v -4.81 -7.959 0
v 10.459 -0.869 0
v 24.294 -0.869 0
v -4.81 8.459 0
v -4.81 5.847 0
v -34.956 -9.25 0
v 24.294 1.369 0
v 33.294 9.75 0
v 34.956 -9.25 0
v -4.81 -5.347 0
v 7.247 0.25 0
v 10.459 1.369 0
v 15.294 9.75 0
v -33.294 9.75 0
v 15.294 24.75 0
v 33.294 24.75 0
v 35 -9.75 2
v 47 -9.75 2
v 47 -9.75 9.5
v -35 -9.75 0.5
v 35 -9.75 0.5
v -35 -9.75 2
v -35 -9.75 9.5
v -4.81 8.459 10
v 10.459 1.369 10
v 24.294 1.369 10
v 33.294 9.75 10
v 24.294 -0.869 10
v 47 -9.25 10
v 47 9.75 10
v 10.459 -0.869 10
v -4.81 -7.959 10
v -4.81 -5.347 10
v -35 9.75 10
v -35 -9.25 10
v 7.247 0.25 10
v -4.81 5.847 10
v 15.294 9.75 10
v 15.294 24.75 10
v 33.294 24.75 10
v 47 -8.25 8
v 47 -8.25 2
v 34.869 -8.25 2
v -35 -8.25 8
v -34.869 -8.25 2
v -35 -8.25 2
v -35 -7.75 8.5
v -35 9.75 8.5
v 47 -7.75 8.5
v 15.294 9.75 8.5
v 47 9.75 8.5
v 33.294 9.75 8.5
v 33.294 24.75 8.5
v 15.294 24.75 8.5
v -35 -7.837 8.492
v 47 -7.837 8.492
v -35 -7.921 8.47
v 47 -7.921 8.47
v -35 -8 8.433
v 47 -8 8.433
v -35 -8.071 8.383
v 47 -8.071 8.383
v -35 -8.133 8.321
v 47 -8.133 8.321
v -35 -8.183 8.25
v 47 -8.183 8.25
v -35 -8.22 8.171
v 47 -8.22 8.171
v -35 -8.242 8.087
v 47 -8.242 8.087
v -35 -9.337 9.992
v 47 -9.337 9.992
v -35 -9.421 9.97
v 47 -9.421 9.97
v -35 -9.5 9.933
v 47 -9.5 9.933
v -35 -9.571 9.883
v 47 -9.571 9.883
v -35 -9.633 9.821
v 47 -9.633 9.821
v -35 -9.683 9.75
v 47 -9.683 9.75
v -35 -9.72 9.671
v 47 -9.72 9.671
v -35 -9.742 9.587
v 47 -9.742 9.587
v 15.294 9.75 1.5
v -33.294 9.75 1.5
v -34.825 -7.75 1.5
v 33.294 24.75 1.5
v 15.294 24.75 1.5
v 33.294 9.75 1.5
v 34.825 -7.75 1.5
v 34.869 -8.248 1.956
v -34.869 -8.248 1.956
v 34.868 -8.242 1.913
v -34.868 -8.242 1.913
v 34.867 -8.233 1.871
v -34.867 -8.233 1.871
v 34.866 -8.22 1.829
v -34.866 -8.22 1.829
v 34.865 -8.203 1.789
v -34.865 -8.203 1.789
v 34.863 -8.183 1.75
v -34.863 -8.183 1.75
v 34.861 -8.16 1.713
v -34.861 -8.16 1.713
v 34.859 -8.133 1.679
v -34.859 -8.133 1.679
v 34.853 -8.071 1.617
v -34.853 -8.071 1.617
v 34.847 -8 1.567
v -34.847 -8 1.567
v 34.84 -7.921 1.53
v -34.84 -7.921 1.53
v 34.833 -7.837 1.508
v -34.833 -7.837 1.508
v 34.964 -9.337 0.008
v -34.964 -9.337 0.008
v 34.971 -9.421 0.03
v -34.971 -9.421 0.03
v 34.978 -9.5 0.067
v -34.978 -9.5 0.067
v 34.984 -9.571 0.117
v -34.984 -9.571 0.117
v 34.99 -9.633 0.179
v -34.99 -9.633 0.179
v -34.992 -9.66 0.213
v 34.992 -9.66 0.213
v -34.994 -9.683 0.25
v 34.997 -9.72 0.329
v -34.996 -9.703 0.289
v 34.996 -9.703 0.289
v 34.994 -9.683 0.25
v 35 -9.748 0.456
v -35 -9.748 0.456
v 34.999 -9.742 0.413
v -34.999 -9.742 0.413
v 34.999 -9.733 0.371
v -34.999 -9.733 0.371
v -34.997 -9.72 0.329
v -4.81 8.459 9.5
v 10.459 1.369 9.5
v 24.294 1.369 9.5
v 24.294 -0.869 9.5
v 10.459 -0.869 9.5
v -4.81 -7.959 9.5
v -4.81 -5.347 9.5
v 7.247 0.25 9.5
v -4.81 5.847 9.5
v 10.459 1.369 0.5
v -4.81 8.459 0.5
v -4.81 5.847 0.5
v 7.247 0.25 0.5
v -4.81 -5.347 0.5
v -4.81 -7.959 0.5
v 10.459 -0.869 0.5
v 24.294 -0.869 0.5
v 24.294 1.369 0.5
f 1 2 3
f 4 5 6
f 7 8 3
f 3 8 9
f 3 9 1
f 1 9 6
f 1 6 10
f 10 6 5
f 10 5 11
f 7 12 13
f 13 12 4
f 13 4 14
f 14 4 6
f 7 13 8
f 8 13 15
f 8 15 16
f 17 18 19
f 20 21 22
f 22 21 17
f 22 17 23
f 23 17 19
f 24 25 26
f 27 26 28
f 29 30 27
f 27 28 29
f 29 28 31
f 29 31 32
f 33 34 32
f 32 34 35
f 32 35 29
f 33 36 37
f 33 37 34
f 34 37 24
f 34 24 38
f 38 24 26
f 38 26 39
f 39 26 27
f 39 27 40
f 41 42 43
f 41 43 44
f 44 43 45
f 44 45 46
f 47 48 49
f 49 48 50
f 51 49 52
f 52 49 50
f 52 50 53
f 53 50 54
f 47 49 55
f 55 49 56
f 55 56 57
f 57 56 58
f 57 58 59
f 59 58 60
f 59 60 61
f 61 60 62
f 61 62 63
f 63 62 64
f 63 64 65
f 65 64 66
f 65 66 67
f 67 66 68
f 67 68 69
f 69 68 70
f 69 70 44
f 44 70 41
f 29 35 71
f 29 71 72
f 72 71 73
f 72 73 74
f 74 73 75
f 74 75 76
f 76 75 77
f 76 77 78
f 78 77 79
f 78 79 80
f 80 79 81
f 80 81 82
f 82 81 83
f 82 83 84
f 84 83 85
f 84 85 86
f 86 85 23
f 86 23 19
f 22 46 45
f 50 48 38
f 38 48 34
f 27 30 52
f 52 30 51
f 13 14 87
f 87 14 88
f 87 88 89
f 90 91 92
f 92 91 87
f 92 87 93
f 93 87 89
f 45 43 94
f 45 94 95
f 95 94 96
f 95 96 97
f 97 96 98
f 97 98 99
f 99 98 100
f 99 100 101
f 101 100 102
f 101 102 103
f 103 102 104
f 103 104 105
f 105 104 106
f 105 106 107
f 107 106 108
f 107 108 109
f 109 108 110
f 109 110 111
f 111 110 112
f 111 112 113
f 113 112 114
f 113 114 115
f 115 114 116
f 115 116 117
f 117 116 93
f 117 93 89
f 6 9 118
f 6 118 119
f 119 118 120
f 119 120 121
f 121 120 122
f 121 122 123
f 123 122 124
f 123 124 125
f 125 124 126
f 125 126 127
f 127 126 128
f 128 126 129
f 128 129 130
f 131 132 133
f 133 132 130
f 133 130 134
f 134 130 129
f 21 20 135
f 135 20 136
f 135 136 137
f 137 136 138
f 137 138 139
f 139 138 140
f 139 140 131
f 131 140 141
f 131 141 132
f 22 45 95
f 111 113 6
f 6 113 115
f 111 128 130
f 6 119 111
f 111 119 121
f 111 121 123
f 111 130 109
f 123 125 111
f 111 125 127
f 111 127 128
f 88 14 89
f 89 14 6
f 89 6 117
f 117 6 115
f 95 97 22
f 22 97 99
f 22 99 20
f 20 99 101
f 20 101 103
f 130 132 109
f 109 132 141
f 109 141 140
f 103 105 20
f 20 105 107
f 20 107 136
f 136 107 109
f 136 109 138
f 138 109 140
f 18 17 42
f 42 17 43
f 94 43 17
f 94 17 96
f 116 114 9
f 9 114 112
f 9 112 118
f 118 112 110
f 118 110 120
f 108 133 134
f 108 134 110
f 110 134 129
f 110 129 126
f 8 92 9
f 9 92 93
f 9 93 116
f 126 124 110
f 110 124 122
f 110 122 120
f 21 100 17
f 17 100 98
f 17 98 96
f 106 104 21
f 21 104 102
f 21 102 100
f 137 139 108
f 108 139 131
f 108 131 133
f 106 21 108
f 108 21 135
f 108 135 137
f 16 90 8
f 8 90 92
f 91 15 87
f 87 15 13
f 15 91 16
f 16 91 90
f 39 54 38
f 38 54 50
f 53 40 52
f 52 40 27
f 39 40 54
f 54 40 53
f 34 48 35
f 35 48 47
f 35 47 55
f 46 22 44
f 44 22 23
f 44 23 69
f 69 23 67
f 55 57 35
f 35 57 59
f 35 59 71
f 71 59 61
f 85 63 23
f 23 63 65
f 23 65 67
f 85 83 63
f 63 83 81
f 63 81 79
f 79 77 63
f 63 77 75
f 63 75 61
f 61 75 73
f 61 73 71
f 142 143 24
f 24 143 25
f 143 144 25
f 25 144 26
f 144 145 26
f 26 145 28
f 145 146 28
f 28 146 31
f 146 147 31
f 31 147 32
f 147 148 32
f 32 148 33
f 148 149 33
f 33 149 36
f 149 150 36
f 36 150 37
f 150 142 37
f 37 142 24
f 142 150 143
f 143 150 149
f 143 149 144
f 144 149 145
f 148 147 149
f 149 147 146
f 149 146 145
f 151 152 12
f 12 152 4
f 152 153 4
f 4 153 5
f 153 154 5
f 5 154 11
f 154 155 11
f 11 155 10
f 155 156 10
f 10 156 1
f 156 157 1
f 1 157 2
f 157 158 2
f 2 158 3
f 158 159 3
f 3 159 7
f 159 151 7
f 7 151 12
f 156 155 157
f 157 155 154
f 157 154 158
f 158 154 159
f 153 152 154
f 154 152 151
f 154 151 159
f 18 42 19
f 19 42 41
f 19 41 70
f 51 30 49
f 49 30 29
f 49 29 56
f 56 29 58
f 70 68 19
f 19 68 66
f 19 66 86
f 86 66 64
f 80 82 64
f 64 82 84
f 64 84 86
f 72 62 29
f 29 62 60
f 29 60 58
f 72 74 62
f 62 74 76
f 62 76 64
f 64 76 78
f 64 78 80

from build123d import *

# Parameters (mm, degrees)
IZIM1_W                     = 70
IZIM1_H                     = 19.5
Y_KSEKLIK_EKSTR_ZYON1_DEPTH = 10
BO_ALTMA1_T                 = -1.5
RADYUS1_R                   = 0.5
RADYUS2_R                   = 0.5
KES_EKSTR_ZYON1_DEPTH       = 2
Y_KSEKLIK_EKSTR_ZYON3_DEPTH = 10
IZIM8_W                     = 18
IZIM8_H                     = 1.5
Y_KSEKLIK_EKSTR_ZYON4_DEPTH = 15
KES_EKSTR_ZYON3_DEPTH       = 10
IZIM10_W                    = 1.5
IZIM10_H                    = 15
KES_EKSTR_ZYON4_DEPTH       = 18
KES_EKSTR_ZYON5_DEPTH       = 0.5
Y_KSEKLIK_EKSTR_ZYON5_DEPTH = 2


with BuildPart() as part:
    # Çizim1 → Yükseklik-Ekstrüzyon1 (new body)
    with BuildSketch(Plane.XY):
        Rectangle(IZIM1_W, IZIM1_H)
    extrude(amount=Y_KSEKLIK_EKSTR_ZYON1_DEPTH)

    # İç Boşaltma1
    bo_altma1_openings = [part.faces().sort_by_distance(p)[0] for p in [
        (-35, 0, 5),
        (0, 9.75, 5),
        (35, 0, 5),
    ]]
    offset(amount=BO_ALTMA1_T, openings=bo_altma1_openings, kind=Kind.INTERSECTION)

    # Radyus1
    radyus1_edges = [part.edges().sort_by_distance(p)[0] for p in [
        (0, -8.25, 1.5),
        (0, -8.25, 8.5),
    ]]
    fillet(radyus1_edges, radius=RADYUS1_R)

    # Radyus2
    radyus2_edges = [part.edges().sort_by_distance(p)[0] for p in [
        (0, -9.75, 10),
        (0, -9.75, 0),
    ]]
    fillet(radyus2_edges, radius=RADYUS2_R)

    # Çizim2 → Kes-Ekstrüzyon1 (cut)
    with BuildSketch(Plane(origin=(0, 0, 0), x_dir=(-1, 0, 0), z_dir=(0, 0, -1))):
        Polygon((35, -9.75), (33.293971061, 9.75), (35, 9.75), align=None)
    kes_ekstr_zyon1 = extrude(amount=-KES_EKSTR_ZYON1_DEPTH, mode=Mode.SUBTRACT)

    # Aynalama1: Kes-Ekstrüzyon1 across plane
    add(kes_ekstr_zyon1.mirror(Plane(origin=(0, 0, 0), x_dir=(0, 0, 1), z_dir=(1, 0, 0))), mode=Mode.SUBTRACT)

    # Çizim7 → Yükseklik-Ekstrüzyon3 (add)
    with BuildSketch(Plane.ZY.offset(35)):
        with BuildLine():
            Line((2, -8.25), (2, -9.75))
            Line((2, -9.75), (9.5, -9.75))
            ThreePointArc((9.5, -9.75), (9.853553391, -9.603553391), (10, -9.25))
            Line((10, -9.25), (10, 9.75))
            Line((10, 9.75), (8.5, 9.75))
            Line((8.5, 9.75), (8.5, -7.75))
            ThreePointArc((8.5, -7.75), (8.353553391, -8.103553391), (8, -8.25))
            Line((8, -8.25), (2, -8.25))
        make_face()
    y_kseklik_ekstr_zyon3 = extrude(amount=Y_KSEKLIK_EKSTR_ZYON3_DEPTH)

    # Çizim8 → Yükseklik-Ekstrüzyon4 (add)
    with BuildSketch(Plane(origin=(0, 9.75, 0), x_dir=(1, 0, 0), z_dir=(0, 1, 0))):
        with Locations((-24.293971061, -0.75)):
            Rectangle(IZIM8_W, IZIM8_H)
        with Locations((-24.293971061, -9.25)):
            Rectangle(IZIM8_W, IZIM8_H)
    y_kseklik_ekstr_zyon4 = extrude(amount=Y_KSEKLIK_EKSTR_ZYON4_DEPTH)

    # Aynalama3: Yükseklik-Ekstrüzyon3, Yükseklik-Ekstrüzyon4 across plane
    add(y_kseklik_ekstr_zyon3.mirror(Plane(origin=(0, 0, 0), x_dir=(0, 0, 1), z_dir=(1, 0, 0))))
    add(y_kseklik_ekstr_zyon4.mirror(Plane(origin=(0, 0, 0), x_dir=(0, 0, 1), z_dir=(1, 0, 0))))

    # Çizim9 → Kes-Ekstrüzyon3 (cut)
    with BuildSketch(Plane.ZY.offset(45)):
        with BuildLine():
            Line((2, -9.75), (9.5, -9.75))
            ThreePointArc((9.5, -9.75), (9.853553391, -9.603553391), (10, -9.25))
            Line((10, -9.25), (10, 9.75))
            Line((10, 9.75), (8.5, 9.75))
            Line((8.5, 9.75), (8.5, -7.75))
            ThreePointArc((8.5, -7.75), (8.353553391, -8.103553391), (8, -8.25))
            Line((8, -8.25), (2, -8.25))
            Line((2, -8.25), (2, -9.75))
        make_face()
    extrude(amount=-KES_EKSTR_ZYON3_DEPTH, mode=Mode.SUBTRACT)

    # Çizim10 → Kes-Ekstrüzyon4 (cut)
    with BuildSketch(Plane.ZY.offset(33.293971061)):
        with Locations((0.75, 17.25)):
            Rectangle(IZIM10_W, IZIM10_H)
        with Locations((9.25, 17.25)):
            Rectangle(IZIM10_W, IZIM10_H)
    extrude(amount=-KES_EKSTR_ZYON4_DEPTH, mode=Mode.SUBTRACT)

    # Çizim11 → Kes-Ekstrüzyon5 (cut)
    with BuildSketch(Plane.XY.offset(10)):
        Polygon((-4.810195605, 8.458867521), (-4.810195605, 5.846955128), (7.246578567, 0.25), (-4.810195605, -5.346955128), (-4.810195605, -7.958867521), (10.458997604, -0.869391026), (24.293971061, -0.869391026), (24.293971061, 1.369391026), (10.458997604, 1.369391026), align=None)
    kes_ekstr_zyon5 = extrude(amount=-KES_EKSTR_ZYON5_DEPTH, mode=Mode.SUBTRACT)

    # Aynalama4: Kes-Ekstrüzyon5 across plane
    add(kes_ekstr_zyon5.mirror(Plane.XY.offset(5)), mode=Mode.SUBTRACT)

    # Çizim12 → Yükseklik-Ekstrüzyon5 (add)
    with BuildSketch(Plane(origin=(45, 0, 0), x_dir=(0, 0, -1), z_dir=(1, 0, 0))):
        with BuildLine():
            Line((-9.5, -9.75), (-2, -9.75))
            Line((-2, -9.75), (-2, -8.25))
            Line((-2, -8.25), (-8, -8.25))
            ThreePointArc((-8, -8.25), (-8.353553391, -8.103553391), (-8.5, -7.75))
            Line((-8.5, -7.75), (-8.5, 9.75))
            Line((-8.5, 9.75), (-10, 9.75))
            Line((-10, 9.75), (-10, -9.25))
            ThreePointArc((-10, -9.25), (-9.853553391, -9.603553391), (-9.5, -9.75))
        make_face()
    extrude(amount=Y_KSEKLIK_EKSTR_ZYON5_DEPTH)


solid = part.part
